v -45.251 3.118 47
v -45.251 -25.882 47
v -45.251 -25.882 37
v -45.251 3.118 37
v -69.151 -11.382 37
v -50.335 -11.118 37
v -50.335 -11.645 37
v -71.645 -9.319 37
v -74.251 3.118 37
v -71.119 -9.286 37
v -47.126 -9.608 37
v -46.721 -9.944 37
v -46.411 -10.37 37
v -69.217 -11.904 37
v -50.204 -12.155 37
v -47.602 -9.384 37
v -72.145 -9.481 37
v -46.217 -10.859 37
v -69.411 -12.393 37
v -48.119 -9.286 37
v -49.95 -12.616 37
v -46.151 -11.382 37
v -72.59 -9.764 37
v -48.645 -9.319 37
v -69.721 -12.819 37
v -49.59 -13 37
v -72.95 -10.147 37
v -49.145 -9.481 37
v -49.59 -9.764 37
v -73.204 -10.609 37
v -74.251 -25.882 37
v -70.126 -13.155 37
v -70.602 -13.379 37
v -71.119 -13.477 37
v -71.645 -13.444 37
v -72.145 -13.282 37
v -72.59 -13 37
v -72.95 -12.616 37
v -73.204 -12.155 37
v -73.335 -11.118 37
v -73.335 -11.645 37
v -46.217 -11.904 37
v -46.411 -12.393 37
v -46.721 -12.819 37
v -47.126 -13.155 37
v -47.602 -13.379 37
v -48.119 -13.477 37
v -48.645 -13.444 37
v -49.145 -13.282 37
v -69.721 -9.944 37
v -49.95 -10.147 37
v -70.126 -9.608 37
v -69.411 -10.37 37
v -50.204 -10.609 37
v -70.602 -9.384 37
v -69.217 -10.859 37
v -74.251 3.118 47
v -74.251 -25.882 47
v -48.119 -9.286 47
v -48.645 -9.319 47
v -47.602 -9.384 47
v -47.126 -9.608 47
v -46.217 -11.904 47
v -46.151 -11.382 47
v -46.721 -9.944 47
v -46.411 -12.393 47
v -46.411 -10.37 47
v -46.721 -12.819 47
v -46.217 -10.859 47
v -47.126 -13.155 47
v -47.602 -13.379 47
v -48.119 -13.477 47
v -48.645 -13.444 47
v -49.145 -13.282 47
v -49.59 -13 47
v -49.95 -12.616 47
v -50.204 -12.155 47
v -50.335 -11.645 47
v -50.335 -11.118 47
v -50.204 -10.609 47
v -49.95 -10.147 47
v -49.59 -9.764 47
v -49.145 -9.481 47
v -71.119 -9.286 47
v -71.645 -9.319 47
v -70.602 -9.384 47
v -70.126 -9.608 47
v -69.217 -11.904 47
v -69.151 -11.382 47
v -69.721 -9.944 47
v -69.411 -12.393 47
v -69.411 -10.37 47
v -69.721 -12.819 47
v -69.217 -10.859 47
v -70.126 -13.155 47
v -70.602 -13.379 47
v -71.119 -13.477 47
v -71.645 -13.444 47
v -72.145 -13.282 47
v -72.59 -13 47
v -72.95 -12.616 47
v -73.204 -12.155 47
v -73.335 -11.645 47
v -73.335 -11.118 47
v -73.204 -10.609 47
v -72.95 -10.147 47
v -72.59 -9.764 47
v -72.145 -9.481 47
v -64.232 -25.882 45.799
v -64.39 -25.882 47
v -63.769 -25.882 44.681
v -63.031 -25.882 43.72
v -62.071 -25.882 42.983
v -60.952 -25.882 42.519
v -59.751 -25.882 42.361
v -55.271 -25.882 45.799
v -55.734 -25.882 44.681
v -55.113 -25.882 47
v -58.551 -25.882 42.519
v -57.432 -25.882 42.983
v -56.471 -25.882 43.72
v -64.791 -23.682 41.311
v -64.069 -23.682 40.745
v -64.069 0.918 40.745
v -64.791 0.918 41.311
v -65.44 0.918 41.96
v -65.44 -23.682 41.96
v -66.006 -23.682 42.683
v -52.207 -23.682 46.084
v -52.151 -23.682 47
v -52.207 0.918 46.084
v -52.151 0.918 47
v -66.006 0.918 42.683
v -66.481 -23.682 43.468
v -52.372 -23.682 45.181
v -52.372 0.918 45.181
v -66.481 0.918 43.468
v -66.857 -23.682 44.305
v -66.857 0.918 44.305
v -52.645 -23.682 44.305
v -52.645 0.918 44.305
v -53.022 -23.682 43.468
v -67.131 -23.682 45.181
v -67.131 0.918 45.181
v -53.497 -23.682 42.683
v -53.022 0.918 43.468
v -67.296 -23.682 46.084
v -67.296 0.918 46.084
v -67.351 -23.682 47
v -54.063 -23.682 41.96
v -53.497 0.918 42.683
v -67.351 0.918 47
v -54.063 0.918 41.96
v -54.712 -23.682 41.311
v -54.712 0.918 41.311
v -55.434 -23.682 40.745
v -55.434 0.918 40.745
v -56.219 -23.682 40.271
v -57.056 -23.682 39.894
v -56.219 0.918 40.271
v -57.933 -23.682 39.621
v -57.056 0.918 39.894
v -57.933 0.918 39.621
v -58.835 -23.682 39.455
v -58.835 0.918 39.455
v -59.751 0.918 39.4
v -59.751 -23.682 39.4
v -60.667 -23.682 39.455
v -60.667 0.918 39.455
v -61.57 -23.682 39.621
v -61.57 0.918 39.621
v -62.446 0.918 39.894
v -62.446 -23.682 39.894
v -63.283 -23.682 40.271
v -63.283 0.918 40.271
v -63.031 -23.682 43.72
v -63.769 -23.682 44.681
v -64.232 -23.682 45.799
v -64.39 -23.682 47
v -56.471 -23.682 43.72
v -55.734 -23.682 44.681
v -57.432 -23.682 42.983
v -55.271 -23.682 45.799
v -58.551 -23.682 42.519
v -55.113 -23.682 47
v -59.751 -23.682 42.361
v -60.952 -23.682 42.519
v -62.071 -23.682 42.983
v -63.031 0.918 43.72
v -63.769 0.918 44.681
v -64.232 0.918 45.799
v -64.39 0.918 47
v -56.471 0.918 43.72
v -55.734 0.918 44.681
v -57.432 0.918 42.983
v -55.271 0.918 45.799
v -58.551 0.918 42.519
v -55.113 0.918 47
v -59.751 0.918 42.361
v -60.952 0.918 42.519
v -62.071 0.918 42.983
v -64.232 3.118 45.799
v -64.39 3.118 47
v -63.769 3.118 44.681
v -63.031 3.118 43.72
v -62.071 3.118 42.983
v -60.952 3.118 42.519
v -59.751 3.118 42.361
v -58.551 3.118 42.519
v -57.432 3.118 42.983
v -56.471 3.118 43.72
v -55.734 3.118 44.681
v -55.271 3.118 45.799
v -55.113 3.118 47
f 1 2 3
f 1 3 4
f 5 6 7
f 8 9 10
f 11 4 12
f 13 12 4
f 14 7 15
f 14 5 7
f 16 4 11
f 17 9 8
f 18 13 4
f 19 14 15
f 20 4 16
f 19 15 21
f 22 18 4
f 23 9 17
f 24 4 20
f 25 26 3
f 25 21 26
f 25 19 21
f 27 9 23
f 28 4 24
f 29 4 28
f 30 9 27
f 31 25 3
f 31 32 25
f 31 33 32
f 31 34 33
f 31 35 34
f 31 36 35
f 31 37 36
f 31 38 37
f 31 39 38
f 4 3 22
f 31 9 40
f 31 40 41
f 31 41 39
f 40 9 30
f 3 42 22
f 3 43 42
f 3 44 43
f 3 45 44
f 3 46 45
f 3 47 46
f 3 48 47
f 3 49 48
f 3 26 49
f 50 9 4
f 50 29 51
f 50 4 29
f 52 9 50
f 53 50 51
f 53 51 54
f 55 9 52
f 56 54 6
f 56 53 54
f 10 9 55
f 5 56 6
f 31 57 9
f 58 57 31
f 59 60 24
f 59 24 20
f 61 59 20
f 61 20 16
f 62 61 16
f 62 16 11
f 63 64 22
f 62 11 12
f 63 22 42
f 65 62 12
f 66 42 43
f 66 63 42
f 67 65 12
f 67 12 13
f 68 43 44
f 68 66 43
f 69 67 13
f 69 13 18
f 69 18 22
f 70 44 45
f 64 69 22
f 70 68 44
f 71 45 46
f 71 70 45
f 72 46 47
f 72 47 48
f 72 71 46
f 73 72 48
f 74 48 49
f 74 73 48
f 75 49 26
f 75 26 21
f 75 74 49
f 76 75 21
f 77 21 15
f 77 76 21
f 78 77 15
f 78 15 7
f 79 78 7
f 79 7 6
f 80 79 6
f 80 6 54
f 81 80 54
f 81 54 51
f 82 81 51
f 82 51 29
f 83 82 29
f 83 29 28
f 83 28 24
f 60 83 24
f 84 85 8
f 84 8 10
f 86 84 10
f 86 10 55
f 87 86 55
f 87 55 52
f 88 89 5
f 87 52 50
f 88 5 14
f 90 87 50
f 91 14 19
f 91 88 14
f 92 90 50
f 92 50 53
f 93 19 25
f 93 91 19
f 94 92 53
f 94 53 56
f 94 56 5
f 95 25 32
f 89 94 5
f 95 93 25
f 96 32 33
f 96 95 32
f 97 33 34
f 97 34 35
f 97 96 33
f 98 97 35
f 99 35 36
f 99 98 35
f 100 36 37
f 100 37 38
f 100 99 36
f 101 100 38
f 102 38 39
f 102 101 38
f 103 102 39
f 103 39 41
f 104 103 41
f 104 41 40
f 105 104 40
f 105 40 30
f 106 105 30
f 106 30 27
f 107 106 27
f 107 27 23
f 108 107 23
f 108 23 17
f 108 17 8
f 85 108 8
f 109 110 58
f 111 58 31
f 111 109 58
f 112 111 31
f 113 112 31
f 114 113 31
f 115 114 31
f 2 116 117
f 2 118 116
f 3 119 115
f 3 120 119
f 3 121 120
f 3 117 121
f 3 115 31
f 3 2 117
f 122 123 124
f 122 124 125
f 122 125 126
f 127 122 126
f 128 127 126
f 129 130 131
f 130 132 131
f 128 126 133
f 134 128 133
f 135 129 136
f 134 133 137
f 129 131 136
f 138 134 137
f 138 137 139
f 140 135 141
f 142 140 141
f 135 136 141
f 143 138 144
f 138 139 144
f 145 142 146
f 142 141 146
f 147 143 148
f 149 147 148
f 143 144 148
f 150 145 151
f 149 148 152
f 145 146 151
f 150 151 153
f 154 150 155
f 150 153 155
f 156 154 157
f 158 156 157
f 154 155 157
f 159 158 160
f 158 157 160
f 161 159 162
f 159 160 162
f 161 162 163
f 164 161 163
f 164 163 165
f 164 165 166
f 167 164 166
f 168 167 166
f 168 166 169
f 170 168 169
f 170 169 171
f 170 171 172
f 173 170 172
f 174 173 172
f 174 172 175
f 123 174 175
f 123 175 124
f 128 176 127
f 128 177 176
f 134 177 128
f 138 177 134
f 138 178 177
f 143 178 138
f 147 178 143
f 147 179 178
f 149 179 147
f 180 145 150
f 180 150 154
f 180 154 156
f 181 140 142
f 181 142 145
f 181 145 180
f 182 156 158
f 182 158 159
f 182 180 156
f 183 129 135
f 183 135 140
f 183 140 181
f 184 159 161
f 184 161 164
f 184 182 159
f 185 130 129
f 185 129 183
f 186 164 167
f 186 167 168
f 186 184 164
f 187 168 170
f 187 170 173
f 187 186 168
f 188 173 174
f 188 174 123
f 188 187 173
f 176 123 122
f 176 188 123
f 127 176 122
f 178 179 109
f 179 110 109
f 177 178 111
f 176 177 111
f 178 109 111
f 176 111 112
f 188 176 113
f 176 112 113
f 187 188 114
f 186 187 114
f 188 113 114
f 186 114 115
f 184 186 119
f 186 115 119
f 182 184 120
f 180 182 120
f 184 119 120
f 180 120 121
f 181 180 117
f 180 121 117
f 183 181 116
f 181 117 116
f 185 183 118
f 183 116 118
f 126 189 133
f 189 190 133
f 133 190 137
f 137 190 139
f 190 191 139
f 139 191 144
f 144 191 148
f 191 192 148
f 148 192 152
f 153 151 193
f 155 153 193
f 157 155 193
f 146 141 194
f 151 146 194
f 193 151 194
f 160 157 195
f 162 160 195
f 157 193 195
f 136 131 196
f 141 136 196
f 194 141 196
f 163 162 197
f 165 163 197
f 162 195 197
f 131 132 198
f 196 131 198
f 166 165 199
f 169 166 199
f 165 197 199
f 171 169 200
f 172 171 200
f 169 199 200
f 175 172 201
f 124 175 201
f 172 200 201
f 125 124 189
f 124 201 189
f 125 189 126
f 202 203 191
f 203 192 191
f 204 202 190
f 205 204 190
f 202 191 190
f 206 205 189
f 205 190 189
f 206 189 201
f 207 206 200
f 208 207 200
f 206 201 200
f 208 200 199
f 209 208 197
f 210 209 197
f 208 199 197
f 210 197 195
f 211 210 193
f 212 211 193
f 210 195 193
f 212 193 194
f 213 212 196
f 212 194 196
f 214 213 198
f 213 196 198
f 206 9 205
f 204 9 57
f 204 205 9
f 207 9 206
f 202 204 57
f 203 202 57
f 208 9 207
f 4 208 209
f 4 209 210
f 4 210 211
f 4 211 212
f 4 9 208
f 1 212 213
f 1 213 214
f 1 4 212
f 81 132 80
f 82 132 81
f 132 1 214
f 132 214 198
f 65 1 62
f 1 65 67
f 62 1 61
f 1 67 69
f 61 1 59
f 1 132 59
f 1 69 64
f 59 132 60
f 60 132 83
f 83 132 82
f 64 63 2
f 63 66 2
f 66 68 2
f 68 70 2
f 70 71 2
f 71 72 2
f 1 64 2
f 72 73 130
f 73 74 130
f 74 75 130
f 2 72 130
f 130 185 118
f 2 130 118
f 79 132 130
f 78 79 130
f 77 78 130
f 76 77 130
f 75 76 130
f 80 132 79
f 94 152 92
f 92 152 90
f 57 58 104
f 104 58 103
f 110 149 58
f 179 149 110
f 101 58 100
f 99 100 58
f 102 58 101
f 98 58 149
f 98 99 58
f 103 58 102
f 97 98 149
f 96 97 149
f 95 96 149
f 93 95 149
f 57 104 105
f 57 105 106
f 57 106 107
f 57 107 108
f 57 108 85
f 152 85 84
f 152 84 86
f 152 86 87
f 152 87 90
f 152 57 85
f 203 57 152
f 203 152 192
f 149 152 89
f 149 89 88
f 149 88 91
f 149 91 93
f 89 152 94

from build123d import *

# Parameters (mm, degrees)
SKETCH_W        = 29
SKETCH_H        = 29
SKETCH_R        = 2.1
PAD_DEPTH       = 10
SKETCH001_R     = 7.6
POCKET_DEPTH    = 35
SKETCH002_W     = 15.2
SKETCH002_H     = 2.2
PAD001_DEPTH    = 9
SKETCH003_R     = 4.638792
POCKET001_DEPTH = 35


with BuildPart() as part:
    # Sketch → Pad (new body)
    with BuildSketch(Plane(origin=(-33.3, -30, 47), x_dir=(1, 0, 0), z_dir=(0, 0, -1))):
        with Locations((-26.451358, -18.618412)):
            Rectangle(SKETCH_W, SKETCH_H)
        with Locations((-37.951358, -18.618412)):
            Circle(SKETCH_R, mode=Mode.SUBTRACT)
        with Locations((-14.951358, -18.618412)):
            Circle(SKETCH_R, mode=Mode.SUBTRACT)
    extrude(amount=PAD_DEPTH)

    # Sketch001 → Pocket (cut)
    with BuildSketch(Plane(origin=(-33.3, 3.118412, 47), x_dir=(1, 0, 0), z_dir=(0, 1, 0))):
        with Locations((-26.451358, 0)):
            Circle(SKETCH001_R)
    extrude(amount=-POCKET_DEPTH, mode=Mode.SUBTRACT)

    # Sketch002 → Pad001 (new body)
    with BuildSketch(Plane(origin=(-33.3, -30, 47), x_dir=(1, 0, 0), z_dir=(0, 0, 1))):
        with Locations((-26.451358, 32.018412)):
            Rectangle(SKETCH002_W, SKETCH002_H)
        with Locations((-26.451358, 5.218412)):
            Rectangle(SKETCH002_W, SKETCH002_H)
    extrude(amount=-PAD001_DEPTH)

    # Sketch003 → Pocket001 (cut)
    with BuildSketch(Plane(origin=(-33.3, -25.881588, 47), x_dir=(-1, 0, 0), z_dir=(0, -1, 0))):
        with Locations((26.451358, 0)):
            Circle(SKETCH003_R)
    extrude(amount=-POCKET001_DEPTH, mode=Mode.SUBTRACT)


solid = part.part
